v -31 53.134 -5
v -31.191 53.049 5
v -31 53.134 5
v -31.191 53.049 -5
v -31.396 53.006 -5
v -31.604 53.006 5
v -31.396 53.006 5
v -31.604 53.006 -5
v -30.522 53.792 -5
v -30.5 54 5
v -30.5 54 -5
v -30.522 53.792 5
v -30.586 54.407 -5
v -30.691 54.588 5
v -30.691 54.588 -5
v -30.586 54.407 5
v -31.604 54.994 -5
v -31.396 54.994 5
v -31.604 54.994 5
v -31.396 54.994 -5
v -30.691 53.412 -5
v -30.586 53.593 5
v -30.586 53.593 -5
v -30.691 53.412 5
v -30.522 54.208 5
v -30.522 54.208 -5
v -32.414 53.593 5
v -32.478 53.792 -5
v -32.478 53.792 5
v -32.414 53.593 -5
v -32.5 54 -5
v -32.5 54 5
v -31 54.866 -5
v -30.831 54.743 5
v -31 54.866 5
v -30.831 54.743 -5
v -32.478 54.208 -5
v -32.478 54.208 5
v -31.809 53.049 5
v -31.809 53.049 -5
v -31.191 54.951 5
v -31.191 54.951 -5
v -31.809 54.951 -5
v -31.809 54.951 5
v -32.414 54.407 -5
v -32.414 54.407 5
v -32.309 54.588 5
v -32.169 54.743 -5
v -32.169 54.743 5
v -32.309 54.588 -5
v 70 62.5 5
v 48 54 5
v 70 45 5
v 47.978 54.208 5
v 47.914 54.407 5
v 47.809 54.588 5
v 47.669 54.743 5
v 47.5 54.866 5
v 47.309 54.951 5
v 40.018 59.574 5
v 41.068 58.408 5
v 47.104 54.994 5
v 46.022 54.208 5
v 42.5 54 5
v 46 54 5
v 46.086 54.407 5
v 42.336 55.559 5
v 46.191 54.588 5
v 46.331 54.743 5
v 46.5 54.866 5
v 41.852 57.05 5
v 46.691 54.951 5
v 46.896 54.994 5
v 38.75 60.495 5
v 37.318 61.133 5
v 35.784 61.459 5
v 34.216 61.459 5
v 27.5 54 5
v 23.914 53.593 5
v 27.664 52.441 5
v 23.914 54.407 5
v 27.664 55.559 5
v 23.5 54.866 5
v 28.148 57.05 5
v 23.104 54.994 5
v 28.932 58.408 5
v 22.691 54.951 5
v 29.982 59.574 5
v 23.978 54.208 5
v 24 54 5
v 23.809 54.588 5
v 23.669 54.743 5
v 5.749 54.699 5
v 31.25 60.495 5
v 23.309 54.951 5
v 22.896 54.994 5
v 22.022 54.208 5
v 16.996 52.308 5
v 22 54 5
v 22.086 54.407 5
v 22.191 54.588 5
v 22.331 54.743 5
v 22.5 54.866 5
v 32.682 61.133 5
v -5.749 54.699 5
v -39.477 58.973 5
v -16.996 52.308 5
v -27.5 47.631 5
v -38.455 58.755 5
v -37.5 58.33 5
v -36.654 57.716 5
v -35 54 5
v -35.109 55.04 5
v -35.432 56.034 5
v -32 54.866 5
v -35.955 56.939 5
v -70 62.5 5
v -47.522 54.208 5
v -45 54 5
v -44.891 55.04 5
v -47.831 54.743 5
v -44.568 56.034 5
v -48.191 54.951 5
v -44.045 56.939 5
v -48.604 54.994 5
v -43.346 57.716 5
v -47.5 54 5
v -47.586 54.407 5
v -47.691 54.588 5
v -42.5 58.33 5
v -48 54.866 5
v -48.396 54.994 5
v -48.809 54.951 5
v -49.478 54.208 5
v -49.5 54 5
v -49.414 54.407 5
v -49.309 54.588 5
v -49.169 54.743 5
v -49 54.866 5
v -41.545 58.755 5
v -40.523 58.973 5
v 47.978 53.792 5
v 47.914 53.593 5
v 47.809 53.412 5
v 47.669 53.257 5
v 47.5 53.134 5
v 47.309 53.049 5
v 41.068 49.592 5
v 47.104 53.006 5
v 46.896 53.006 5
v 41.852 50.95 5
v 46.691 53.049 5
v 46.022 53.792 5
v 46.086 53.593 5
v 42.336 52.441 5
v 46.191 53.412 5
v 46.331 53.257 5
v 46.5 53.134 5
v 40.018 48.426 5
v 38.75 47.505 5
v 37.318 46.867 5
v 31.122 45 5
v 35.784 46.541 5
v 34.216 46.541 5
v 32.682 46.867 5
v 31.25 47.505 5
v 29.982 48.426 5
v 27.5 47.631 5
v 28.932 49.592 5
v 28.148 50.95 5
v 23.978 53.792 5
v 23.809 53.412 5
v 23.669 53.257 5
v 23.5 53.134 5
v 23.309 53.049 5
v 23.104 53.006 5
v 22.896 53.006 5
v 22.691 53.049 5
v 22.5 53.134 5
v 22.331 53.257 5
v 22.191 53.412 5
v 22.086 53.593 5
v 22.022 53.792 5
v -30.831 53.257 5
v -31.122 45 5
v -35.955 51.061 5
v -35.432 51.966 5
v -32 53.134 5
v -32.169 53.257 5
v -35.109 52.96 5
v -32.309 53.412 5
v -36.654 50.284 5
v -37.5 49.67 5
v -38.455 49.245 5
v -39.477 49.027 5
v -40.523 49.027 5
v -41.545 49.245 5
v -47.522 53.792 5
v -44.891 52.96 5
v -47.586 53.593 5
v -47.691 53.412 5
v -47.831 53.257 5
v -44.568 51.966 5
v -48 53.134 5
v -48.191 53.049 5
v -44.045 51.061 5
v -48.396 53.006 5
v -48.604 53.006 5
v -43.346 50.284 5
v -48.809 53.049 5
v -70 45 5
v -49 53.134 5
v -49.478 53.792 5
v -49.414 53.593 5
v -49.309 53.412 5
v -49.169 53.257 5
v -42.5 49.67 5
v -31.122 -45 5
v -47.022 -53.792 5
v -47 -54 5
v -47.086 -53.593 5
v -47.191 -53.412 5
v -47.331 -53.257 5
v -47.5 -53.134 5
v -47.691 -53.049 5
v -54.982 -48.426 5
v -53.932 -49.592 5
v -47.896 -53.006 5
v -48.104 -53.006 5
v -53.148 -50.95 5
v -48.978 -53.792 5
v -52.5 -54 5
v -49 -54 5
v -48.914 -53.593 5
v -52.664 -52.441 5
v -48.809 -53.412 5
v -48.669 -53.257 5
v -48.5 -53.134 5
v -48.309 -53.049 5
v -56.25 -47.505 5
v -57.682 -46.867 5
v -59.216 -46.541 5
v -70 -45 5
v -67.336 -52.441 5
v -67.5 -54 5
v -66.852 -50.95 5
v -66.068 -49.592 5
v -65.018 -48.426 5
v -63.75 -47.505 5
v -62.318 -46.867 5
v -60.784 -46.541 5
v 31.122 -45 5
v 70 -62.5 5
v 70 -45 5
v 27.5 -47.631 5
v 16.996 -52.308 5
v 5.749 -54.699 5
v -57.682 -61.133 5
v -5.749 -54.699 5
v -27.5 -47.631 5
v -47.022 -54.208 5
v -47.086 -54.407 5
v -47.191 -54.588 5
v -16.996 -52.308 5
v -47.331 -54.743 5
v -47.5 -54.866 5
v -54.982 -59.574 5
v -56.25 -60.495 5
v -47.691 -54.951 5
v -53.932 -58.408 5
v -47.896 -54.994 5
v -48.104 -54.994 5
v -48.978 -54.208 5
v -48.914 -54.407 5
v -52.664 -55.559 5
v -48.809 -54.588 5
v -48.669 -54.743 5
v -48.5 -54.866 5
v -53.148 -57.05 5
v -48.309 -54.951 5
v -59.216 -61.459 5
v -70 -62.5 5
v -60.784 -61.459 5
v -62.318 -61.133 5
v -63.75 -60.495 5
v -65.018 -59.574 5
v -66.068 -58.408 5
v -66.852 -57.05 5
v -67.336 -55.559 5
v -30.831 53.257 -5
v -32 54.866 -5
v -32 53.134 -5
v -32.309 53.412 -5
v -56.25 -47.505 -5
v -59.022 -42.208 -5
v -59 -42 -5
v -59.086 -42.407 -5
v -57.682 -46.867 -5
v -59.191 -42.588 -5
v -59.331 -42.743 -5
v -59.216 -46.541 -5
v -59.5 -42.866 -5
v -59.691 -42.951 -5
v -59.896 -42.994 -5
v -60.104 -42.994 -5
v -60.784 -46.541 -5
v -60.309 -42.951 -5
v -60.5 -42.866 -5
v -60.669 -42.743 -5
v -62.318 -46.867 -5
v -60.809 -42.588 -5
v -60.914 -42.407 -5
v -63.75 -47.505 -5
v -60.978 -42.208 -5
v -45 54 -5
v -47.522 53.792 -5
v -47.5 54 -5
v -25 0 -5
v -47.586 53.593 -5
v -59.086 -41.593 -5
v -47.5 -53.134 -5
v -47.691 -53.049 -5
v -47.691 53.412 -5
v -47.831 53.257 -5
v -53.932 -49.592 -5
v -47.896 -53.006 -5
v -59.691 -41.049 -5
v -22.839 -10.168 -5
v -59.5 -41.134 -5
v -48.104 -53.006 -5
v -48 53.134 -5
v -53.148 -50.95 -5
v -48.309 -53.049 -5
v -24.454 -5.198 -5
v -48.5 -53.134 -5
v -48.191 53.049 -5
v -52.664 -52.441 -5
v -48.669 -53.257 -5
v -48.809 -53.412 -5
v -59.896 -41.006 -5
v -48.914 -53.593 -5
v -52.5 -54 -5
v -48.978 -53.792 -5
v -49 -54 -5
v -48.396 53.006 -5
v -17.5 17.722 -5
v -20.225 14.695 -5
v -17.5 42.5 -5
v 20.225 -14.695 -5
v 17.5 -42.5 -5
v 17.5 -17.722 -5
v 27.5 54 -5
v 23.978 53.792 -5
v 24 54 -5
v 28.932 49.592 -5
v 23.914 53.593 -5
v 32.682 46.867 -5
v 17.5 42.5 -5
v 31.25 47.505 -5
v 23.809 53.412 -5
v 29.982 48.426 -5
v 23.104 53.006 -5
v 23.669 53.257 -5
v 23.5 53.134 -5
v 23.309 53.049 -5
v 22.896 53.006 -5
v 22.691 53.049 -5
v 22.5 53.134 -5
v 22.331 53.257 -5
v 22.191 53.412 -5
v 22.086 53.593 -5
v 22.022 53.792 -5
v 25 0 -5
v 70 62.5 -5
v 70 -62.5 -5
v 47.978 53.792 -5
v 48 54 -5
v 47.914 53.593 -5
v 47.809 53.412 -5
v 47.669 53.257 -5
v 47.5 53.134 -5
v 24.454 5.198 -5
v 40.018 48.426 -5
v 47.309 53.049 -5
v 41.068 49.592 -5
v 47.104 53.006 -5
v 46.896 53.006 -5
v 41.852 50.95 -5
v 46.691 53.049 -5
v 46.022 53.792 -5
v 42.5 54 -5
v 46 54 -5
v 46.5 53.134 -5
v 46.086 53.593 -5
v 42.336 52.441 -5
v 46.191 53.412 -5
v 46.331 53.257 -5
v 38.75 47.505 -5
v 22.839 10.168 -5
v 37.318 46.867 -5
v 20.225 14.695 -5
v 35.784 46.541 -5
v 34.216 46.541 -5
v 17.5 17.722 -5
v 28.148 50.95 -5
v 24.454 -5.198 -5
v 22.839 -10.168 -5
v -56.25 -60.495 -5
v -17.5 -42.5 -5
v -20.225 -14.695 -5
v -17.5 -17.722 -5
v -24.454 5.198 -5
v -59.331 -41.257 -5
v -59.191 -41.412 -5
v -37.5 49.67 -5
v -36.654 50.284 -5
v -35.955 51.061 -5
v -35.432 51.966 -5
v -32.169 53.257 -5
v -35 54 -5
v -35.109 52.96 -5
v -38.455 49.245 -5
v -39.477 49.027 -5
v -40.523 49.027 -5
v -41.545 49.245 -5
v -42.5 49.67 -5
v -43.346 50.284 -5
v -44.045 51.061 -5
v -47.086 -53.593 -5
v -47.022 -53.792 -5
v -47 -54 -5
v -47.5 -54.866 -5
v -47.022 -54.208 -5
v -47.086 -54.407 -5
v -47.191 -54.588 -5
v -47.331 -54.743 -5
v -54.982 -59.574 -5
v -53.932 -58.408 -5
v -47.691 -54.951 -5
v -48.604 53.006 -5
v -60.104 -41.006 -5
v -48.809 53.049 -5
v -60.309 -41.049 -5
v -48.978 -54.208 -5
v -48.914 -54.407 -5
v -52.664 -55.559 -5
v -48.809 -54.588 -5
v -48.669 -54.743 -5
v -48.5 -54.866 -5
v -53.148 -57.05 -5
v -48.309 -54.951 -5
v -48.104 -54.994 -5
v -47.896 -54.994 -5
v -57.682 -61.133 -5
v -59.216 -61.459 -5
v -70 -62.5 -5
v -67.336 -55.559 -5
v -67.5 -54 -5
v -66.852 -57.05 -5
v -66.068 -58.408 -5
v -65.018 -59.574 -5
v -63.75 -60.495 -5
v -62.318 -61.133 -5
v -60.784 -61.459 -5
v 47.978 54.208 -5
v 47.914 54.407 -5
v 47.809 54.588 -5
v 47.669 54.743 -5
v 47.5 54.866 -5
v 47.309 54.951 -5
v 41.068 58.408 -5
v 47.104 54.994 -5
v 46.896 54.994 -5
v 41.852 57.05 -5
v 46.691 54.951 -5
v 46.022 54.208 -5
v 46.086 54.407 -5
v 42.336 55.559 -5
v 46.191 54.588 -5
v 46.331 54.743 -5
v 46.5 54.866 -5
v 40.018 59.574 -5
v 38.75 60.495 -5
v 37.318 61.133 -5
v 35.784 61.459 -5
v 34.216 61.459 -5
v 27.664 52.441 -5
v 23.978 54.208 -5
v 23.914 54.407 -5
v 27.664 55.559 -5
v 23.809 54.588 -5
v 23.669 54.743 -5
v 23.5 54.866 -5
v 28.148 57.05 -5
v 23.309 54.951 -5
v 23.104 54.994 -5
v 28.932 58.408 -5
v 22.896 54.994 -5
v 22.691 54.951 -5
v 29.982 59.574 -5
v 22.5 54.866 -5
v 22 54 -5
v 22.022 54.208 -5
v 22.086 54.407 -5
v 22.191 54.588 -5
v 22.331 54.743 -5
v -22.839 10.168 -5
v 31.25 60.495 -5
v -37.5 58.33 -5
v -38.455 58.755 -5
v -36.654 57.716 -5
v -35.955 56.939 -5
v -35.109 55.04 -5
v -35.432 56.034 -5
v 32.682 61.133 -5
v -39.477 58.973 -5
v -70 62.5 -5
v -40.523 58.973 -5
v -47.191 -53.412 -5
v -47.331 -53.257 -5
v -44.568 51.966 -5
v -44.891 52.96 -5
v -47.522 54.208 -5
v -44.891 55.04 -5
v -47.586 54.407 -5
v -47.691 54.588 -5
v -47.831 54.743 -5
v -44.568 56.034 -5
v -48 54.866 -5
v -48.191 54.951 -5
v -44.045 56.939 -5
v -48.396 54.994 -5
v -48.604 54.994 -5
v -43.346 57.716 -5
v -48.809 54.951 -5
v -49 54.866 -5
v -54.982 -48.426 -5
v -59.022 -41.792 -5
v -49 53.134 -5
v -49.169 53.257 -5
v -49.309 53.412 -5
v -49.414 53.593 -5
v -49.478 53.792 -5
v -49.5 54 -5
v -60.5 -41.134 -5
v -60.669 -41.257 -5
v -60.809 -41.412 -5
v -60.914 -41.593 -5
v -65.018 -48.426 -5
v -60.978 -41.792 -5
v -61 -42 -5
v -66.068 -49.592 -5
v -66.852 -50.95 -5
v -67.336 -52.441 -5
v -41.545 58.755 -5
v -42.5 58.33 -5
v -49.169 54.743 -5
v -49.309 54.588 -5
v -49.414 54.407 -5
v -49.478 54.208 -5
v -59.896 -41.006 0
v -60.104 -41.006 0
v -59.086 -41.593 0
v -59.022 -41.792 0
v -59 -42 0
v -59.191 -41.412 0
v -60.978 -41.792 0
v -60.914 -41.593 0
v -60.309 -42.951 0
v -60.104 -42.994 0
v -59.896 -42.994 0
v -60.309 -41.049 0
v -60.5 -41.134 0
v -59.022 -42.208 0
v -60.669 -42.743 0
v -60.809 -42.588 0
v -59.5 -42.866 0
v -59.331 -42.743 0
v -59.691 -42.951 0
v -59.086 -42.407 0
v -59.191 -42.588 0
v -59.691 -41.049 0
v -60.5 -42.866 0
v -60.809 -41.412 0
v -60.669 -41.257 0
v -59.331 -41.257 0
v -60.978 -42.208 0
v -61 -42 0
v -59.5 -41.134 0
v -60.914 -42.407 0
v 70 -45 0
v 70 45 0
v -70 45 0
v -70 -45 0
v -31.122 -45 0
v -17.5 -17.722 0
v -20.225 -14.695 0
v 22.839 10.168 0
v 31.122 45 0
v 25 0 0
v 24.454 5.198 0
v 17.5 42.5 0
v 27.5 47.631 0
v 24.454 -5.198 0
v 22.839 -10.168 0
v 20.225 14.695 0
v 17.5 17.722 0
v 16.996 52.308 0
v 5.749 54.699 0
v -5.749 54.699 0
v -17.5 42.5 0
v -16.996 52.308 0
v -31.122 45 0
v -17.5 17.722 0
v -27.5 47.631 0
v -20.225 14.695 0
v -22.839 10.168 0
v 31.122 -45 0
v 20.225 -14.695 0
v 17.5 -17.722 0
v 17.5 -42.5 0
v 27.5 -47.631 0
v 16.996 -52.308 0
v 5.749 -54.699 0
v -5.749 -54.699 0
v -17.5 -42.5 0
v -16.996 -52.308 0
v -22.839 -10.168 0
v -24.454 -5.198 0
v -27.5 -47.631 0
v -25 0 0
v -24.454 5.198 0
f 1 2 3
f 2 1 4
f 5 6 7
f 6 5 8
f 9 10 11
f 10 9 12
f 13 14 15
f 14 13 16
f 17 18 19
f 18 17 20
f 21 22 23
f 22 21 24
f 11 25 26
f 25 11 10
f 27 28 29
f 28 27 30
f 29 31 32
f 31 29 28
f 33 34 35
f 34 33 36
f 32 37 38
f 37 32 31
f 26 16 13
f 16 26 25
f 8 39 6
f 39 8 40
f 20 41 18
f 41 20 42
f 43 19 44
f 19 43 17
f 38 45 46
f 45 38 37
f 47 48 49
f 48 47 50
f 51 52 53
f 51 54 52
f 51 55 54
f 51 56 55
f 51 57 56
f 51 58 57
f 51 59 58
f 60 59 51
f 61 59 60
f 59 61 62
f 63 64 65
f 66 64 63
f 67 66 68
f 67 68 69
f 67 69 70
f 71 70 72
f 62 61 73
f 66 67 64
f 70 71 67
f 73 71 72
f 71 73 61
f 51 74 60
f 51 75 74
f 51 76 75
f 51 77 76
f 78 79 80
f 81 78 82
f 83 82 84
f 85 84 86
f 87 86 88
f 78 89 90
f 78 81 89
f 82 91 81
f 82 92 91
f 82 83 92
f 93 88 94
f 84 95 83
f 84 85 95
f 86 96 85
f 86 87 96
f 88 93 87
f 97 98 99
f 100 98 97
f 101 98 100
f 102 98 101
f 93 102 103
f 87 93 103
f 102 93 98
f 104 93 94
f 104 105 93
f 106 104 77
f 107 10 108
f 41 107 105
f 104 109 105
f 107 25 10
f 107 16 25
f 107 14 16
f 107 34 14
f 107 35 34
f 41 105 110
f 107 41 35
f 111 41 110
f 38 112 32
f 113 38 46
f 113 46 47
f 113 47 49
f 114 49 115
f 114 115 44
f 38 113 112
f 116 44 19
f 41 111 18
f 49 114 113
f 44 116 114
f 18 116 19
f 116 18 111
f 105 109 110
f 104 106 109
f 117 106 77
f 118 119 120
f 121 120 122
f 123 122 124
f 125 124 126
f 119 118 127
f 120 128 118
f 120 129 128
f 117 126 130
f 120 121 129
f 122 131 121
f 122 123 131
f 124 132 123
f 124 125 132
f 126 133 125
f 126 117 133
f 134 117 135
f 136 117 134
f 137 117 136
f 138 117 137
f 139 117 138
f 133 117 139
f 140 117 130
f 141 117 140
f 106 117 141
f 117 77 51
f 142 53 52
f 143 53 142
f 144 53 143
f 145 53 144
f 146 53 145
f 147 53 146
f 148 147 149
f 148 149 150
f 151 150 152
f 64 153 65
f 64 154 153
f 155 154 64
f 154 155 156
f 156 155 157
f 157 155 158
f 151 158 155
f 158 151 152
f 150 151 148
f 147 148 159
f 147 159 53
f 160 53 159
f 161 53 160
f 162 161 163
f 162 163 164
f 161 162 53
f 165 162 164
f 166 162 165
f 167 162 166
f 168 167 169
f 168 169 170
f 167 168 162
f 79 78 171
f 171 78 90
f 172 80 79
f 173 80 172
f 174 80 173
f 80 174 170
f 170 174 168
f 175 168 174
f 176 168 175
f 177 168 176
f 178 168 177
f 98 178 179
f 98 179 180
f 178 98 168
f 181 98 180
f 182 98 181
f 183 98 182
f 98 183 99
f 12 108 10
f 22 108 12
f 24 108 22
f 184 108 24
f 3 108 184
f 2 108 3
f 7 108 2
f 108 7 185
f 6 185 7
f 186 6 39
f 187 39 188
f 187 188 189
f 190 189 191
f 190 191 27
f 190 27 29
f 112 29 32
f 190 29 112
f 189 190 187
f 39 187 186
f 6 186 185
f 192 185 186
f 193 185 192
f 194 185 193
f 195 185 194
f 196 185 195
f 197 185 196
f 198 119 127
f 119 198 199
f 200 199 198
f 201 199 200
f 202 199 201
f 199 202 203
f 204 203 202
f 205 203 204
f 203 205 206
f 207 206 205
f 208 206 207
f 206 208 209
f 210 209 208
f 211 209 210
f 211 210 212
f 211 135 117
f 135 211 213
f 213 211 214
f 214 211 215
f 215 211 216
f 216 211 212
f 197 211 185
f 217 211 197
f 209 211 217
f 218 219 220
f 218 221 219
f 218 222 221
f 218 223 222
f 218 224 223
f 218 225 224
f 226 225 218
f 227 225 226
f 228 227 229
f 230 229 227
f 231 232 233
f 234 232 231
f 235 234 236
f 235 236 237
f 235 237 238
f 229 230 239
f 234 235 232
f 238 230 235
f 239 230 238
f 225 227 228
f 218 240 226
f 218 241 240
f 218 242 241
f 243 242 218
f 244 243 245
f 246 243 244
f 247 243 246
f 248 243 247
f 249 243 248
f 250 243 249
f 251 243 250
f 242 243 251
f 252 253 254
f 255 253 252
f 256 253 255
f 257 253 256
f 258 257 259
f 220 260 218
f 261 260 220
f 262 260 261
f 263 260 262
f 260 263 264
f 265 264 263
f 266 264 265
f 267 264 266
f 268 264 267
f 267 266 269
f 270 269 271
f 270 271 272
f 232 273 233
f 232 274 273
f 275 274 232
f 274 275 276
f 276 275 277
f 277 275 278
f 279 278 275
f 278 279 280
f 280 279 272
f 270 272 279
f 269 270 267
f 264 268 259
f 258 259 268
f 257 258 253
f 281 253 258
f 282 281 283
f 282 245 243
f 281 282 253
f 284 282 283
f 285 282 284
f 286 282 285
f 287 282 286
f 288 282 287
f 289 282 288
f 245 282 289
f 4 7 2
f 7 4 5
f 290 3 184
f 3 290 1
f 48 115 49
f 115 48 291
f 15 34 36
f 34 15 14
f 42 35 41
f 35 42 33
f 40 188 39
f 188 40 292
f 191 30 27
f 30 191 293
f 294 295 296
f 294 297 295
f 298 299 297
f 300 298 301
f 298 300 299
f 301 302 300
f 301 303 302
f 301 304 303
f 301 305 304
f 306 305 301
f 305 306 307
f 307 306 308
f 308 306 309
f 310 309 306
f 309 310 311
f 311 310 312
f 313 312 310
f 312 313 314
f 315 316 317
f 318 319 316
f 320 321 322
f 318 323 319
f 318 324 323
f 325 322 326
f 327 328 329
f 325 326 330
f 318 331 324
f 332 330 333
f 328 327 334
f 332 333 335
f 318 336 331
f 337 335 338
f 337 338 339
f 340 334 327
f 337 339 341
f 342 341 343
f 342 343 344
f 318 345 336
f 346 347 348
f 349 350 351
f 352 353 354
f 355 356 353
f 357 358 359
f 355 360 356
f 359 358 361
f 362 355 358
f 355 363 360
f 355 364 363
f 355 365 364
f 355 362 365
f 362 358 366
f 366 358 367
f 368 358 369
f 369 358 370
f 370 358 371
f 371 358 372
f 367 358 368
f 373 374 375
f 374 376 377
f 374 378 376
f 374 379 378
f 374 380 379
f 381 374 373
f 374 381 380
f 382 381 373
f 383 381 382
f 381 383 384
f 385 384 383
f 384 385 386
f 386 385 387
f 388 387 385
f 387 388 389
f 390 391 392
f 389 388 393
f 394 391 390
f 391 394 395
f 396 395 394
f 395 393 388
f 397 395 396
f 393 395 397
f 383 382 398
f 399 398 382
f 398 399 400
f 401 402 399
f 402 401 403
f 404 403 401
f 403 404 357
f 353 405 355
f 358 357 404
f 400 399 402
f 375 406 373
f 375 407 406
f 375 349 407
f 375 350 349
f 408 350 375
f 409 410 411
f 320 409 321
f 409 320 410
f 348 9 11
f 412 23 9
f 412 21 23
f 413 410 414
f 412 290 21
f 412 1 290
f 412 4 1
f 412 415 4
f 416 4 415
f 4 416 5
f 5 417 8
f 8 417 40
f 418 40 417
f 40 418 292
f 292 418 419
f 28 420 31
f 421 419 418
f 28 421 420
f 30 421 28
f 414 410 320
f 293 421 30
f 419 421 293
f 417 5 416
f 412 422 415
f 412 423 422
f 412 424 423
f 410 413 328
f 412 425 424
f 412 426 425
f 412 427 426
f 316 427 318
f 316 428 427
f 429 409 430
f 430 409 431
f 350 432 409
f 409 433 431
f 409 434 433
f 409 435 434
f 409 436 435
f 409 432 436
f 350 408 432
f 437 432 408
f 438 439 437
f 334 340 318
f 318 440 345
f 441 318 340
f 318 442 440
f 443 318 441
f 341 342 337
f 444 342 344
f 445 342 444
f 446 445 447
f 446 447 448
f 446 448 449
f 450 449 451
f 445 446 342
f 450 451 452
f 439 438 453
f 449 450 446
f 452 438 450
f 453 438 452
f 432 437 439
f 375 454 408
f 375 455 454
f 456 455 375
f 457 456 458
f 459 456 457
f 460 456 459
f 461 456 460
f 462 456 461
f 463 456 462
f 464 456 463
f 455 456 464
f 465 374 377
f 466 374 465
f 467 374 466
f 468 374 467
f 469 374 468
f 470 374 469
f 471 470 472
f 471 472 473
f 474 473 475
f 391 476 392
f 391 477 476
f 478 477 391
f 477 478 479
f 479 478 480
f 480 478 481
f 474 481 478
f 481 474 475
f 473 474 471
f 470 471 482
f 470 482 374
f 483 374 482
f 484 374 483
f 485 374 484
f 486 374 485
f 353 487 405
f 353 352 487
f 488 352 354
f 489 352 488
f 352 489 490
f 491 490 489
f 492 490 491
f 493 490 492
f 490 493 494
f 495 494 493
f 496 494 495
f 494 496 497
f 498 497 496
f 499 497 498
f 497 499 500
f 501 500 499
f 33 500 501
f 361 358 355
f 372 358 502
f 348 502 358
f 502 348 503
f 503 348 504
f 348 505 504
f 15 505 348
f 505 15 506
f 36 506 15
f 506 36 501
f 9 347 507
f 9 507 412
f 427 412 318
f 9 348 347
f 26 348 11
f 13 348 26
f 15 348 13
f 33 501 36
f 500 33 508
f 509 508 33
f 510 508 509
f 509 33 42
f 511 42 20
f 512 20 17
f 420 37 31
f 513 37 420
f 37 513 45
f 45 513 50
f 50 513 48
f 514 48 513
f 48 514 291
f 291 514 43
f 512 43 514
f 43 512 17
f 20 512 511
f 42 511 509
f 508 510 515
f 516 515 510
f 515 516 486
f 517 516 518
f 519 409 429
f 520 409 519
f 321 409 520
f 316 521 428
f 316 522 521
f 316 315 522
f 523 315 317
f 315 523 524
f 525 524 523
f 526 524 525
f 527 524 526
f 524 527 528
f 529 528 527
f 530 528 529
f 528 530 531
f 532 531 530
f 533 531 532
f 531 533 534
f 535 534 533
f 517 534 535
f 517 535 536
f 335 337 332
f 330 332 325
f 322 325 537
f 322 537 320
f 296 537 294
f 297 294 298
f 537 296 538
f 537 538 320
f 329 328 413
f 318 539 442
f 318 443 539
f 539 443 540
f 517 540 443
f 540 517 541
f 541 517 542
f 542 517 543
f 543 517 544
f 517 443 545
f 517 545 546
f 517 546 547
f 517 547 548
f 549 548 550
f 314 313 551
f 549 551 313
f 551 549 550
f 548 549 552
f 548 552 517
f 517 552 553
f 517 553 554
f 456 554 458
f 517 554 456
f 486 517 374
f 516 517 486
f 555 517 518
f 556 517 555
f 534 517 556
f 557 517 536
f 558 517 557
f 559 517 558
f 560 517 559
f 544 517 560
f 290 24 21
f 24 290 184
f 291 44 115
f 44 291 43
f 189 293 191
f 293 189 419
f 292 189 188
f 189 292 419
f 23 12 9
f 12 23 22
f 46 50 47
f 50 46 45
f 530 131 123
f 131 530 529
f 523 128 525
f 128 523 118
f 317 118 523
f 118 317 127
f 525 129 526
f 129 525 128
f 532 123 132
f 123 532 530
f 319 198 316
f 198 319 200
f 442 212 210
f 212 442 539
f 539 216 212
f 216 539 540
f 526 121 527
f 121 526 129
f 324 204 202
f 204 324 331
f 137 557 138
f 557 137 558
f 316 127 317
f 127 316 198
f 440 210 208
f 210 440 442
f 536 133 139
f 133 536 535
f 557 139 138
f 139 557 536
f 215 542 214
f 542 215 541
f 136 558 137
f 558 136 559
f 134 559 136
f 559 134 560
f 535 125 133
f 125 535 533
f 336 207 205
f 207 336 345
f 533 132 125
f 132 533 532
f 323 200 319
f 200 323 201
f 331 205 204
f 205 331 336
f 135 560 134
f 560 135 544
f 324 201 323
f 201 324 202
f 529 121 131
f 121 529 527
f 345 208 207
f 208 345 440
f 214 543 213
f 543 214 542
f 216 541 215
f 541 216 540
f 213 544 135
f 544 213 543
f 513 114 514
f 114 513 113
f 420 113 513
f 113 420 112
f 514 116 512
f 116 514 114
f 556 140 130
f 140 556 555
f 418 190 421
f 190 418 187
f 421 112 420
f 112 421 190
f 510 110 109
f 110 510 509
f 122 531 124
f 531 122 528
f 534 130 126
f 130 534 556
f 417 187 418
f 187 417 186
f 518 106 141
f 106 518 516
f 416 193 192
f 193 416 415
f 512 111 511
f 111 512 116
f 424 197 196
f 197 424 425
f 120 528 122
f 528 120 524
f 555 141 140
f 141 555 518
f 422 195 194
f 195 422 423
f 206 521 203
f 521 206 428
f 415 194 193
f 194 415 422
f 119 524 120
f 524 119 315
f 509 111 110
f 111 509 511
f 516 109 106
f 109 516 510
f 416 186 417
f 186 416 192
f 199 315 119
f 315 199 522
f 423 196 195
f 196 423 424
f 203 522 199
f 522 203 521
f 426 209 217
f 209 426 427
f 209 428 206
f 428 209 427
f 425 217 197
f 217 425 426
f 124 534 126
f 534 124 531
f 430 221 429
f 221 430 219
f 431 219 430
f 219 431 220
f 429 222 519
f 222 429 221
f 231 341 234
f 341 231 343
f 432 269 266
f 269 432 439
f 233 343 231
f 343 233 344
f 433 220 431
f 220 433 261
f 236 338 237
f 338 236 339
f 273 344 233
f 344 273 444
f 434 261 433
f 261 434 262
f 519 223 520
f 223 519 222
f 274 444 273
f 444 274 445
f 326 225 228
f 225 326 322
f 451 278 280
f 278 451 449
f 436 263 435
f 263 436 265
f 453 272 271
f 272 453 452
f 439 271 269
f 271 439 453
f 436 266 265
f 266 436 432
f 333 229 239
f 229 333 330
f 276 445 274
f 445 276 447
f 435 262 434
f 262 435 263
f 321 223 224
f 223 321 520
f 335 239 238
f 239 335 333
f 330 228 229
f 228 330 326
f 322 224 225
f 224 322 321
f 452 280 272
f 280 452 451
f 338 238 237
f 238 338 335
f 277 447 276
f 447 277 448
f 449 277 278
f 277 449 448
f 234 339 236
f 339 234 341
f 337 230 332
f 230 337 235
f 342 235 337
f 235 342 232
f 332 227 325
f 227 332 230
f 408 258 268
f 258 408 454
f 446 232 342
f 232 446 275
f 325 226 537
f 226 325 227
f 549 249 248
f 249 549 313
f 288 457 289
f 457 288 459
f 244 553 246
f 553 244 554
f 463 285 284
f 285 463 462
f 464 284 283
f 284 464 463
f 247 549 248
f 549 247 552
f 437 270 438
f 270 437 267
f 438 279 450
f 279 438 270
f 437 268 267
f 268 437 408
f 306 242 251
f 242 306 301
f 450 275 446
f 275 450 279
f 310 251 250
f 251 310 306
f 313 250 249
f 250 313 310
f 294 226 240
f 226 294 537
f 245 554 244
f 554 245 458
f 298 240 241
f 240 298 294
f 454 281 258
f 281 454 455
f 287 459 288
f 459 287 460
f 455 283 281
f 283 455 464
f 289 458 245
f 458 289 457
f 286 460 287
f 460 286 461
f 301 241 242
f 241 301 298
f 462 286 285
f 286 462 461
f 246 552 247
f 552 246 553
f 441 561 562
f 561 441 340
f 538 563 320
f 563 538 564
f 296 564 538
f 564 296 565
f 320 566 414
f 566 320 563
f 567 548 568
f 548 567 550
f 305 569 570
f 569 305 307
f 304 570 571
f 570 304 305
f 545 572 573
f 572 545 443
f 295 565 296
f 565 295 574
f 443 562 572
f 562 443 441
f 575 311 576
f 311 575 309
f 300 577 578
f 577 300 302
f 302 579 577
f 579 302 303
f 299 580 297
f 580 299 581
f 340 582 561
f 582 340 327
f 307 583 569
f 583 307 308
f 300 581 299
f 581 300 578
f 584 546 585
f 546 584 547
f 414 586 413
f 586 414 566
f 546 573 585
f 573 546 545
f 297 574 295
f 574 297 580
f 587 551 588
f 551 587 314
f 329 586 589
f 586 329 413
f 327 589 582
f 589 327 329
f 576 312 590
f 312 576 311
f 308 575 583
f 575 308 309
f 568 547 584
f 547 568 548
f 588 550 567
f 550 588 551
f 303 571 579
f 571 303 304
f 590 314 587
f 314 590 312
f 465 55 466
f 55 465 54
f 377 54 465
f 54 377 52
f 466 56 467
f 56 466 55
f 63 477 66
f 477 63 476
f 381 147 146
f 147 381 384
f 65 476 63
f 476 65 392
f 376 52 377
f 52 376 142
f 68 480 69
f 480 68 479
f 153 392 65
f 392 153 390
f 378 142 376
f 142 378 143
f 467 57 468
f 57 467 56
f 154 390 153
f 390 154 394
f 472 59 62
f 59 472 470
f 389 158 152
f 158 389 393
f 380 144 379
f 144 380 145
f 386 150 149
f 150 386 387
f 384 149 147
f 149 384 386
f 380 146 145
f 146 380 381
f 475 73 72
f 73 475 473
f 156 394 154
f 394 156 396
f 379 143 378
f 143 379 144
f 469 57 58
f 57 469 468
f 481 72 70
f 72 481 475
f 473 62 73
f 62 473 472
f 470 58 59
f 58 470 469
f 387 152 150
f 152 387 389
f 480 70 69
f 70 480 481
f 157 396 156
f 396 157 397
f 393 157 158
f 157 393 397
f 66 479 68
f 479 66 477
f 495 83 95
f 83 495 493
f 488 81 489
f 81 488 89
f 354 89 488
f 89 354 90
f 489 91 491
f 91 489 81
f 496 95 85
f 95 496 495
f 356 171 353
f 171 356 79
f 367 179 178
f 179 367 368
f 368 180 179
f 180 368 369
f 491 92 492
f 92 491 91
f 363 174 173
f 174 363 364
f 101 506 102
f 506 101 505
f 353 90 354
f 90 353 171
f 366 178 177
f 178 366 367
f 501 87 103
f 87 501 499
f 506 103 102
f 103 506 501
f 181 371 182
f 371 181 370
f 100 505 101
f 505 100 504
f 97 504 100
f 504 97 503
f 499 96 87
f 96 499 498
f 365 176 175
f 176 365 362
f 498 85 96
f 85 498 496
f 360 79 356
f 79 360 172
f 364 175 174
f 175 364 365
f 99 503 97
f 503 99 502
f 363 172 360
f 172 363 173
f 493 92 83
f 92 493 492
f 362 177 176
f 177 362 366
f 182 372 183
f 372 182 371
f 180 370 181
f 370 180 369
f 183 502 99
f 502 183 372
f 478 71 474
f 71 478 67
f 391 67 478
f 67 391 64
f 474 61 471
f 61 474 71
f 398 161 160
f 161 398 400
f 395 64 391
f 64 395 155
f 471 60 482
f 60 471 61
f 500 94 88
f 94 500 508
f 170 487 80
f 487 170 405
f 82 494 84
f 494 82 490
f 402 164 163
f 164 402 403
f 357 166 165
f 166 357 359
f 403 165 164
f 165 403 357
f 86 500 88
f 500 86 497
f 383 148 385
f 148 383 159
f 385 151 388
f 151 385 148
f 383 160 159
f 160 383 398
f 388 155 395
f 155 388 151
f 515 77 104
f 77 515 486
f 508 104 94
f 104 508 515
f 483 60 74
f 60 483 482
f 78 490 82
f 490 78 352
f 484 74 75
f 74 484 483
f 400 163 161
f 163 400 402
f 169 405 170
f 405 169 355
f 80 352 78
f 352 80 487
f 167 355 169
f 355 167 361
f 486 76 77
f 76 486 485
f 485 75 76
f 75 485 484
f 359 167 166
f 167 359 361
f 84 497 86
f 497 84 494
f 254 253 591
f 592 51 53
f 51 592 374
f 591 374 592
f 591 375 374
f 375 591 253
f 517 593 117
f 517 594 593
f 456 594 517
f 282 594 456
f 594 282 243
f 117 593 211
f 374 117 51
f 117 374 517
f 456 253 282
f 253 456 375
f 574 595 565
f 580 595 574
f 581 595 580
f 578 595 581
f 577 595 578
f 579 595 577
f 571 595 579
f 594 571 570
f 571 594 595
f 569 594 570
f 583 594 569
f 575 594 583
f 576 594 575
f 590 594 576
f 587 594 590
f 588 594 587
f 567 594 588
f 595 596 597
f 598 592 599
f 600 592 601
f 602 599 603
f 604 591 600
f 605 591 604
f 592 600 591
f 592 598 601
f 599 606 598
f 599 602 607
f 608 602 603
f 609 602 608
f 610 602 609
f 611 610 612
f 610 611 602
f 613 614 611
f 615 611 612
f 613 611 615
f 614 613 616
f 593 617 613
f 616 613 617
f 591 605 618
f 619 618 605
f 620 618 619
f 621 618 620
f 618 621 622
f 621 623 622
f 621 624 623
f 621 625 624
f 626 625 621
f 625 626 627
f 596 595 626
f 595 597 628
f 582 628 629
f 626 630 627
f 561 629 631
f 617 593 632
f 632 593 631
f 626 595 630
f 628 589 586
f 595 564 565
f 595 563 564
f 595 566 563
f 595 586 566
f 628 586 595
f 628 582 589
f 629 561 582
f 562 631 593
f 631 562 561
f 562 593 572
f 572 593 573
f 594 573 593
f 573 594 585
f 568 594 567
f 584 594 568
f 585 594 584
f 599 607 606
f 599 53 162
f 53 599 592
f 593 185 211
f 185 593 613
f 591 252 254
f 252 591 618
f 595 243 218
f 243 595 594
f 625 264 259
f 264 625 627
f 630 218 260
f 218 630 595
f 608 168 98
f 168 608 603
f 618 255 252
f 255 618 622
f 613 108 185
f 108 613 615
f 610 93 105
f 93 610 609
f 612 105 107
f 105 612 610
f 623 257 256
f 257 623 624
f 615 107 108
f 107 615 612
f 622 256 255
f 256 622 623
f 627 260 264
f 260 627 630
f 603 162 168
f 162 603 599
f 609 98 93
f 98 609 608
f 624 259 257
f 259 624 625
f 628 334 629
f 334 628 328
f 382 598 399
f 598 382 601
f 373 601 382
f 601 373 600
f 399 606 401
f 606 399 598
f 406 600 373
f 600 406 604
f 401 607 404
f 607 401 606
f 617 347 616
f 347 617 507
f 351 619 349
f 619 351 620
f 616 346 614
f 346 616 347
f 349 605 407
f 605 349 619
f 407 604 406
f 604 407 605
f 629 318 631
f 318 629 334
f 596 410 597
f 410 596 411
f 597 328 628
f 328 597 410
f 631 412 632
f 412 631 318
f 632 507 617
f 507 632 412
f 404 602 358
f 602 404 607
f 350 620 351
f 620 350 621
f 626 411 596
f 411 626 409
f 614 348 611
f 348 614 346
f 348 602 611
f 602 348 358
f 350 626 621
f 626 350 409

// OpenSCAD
// Multi_Tissue_Recording Stage v0.3
// Jack F. Murphy <me@jackmurphy.nyc>
// https://github.com/teammurphy/Multi_Tissue_CAD

// Smoothness
$fn = 30;

// Stage Dimensions
stage_len=140;
stage_width=125;
stage_thickness=10;

// Hole Dimensions
hole_diam=50;
hole_len=85;
hole_width=35;
lin_bearing=15;
threaded=10;
pilot_rad=2;

difference(){
  translate([0, 0, 0])  
    cube([stage_len, stage_width, stage_thickness], center=true);
    
  // Create lower level
  translate([0, 0, 5]) 
    cube([stage_len, 90, stage_thickness], center=true);
  
  translate([0, 0, 5])
    cylinder(d=110, h=stage_thickness, center=true);
    
  // Circular Gap
  translate([0, 0, 0])
    cylinder(d=hole_diam, h=stage_thickness, center=true);

  // Rectangular Gap
  translate([0, 0, 0])  
    cube([hole_width, hole_len, stage_thickness], center=true);

  // Threaded Hole
  translate([-40, 54, 0]){
    cylinder(d=threaded, h=stage_thickness, center=true);
    pilot_holes(8.5);
  }

  // Linear Bearing Holes
  translate([-60, -54, 0]) {
    cylinder(d=lin_bearing, h=stage_thickness, center=true);
    pilot_holes(12);
    translate([0, 12, 0])
        cylinder(d=pilot_rad, h=stage_thickness, center=true);
  }
  translate([35, 54, 0]) {
    cylinder(d=lin_bearing, h=stage_thickness, center=true);
    pilot_holes(12);
  }

}

// Create 2
module pilot_holes(radius){
  translate([radius, 0, 0])
    cylinder(d=pilot_rad, h=stage_thickness, center=true);
  translate([-1*radius, 0, 0])
    cylinder(d=pilot_rad, h=stage_thickness, center=true);
}
